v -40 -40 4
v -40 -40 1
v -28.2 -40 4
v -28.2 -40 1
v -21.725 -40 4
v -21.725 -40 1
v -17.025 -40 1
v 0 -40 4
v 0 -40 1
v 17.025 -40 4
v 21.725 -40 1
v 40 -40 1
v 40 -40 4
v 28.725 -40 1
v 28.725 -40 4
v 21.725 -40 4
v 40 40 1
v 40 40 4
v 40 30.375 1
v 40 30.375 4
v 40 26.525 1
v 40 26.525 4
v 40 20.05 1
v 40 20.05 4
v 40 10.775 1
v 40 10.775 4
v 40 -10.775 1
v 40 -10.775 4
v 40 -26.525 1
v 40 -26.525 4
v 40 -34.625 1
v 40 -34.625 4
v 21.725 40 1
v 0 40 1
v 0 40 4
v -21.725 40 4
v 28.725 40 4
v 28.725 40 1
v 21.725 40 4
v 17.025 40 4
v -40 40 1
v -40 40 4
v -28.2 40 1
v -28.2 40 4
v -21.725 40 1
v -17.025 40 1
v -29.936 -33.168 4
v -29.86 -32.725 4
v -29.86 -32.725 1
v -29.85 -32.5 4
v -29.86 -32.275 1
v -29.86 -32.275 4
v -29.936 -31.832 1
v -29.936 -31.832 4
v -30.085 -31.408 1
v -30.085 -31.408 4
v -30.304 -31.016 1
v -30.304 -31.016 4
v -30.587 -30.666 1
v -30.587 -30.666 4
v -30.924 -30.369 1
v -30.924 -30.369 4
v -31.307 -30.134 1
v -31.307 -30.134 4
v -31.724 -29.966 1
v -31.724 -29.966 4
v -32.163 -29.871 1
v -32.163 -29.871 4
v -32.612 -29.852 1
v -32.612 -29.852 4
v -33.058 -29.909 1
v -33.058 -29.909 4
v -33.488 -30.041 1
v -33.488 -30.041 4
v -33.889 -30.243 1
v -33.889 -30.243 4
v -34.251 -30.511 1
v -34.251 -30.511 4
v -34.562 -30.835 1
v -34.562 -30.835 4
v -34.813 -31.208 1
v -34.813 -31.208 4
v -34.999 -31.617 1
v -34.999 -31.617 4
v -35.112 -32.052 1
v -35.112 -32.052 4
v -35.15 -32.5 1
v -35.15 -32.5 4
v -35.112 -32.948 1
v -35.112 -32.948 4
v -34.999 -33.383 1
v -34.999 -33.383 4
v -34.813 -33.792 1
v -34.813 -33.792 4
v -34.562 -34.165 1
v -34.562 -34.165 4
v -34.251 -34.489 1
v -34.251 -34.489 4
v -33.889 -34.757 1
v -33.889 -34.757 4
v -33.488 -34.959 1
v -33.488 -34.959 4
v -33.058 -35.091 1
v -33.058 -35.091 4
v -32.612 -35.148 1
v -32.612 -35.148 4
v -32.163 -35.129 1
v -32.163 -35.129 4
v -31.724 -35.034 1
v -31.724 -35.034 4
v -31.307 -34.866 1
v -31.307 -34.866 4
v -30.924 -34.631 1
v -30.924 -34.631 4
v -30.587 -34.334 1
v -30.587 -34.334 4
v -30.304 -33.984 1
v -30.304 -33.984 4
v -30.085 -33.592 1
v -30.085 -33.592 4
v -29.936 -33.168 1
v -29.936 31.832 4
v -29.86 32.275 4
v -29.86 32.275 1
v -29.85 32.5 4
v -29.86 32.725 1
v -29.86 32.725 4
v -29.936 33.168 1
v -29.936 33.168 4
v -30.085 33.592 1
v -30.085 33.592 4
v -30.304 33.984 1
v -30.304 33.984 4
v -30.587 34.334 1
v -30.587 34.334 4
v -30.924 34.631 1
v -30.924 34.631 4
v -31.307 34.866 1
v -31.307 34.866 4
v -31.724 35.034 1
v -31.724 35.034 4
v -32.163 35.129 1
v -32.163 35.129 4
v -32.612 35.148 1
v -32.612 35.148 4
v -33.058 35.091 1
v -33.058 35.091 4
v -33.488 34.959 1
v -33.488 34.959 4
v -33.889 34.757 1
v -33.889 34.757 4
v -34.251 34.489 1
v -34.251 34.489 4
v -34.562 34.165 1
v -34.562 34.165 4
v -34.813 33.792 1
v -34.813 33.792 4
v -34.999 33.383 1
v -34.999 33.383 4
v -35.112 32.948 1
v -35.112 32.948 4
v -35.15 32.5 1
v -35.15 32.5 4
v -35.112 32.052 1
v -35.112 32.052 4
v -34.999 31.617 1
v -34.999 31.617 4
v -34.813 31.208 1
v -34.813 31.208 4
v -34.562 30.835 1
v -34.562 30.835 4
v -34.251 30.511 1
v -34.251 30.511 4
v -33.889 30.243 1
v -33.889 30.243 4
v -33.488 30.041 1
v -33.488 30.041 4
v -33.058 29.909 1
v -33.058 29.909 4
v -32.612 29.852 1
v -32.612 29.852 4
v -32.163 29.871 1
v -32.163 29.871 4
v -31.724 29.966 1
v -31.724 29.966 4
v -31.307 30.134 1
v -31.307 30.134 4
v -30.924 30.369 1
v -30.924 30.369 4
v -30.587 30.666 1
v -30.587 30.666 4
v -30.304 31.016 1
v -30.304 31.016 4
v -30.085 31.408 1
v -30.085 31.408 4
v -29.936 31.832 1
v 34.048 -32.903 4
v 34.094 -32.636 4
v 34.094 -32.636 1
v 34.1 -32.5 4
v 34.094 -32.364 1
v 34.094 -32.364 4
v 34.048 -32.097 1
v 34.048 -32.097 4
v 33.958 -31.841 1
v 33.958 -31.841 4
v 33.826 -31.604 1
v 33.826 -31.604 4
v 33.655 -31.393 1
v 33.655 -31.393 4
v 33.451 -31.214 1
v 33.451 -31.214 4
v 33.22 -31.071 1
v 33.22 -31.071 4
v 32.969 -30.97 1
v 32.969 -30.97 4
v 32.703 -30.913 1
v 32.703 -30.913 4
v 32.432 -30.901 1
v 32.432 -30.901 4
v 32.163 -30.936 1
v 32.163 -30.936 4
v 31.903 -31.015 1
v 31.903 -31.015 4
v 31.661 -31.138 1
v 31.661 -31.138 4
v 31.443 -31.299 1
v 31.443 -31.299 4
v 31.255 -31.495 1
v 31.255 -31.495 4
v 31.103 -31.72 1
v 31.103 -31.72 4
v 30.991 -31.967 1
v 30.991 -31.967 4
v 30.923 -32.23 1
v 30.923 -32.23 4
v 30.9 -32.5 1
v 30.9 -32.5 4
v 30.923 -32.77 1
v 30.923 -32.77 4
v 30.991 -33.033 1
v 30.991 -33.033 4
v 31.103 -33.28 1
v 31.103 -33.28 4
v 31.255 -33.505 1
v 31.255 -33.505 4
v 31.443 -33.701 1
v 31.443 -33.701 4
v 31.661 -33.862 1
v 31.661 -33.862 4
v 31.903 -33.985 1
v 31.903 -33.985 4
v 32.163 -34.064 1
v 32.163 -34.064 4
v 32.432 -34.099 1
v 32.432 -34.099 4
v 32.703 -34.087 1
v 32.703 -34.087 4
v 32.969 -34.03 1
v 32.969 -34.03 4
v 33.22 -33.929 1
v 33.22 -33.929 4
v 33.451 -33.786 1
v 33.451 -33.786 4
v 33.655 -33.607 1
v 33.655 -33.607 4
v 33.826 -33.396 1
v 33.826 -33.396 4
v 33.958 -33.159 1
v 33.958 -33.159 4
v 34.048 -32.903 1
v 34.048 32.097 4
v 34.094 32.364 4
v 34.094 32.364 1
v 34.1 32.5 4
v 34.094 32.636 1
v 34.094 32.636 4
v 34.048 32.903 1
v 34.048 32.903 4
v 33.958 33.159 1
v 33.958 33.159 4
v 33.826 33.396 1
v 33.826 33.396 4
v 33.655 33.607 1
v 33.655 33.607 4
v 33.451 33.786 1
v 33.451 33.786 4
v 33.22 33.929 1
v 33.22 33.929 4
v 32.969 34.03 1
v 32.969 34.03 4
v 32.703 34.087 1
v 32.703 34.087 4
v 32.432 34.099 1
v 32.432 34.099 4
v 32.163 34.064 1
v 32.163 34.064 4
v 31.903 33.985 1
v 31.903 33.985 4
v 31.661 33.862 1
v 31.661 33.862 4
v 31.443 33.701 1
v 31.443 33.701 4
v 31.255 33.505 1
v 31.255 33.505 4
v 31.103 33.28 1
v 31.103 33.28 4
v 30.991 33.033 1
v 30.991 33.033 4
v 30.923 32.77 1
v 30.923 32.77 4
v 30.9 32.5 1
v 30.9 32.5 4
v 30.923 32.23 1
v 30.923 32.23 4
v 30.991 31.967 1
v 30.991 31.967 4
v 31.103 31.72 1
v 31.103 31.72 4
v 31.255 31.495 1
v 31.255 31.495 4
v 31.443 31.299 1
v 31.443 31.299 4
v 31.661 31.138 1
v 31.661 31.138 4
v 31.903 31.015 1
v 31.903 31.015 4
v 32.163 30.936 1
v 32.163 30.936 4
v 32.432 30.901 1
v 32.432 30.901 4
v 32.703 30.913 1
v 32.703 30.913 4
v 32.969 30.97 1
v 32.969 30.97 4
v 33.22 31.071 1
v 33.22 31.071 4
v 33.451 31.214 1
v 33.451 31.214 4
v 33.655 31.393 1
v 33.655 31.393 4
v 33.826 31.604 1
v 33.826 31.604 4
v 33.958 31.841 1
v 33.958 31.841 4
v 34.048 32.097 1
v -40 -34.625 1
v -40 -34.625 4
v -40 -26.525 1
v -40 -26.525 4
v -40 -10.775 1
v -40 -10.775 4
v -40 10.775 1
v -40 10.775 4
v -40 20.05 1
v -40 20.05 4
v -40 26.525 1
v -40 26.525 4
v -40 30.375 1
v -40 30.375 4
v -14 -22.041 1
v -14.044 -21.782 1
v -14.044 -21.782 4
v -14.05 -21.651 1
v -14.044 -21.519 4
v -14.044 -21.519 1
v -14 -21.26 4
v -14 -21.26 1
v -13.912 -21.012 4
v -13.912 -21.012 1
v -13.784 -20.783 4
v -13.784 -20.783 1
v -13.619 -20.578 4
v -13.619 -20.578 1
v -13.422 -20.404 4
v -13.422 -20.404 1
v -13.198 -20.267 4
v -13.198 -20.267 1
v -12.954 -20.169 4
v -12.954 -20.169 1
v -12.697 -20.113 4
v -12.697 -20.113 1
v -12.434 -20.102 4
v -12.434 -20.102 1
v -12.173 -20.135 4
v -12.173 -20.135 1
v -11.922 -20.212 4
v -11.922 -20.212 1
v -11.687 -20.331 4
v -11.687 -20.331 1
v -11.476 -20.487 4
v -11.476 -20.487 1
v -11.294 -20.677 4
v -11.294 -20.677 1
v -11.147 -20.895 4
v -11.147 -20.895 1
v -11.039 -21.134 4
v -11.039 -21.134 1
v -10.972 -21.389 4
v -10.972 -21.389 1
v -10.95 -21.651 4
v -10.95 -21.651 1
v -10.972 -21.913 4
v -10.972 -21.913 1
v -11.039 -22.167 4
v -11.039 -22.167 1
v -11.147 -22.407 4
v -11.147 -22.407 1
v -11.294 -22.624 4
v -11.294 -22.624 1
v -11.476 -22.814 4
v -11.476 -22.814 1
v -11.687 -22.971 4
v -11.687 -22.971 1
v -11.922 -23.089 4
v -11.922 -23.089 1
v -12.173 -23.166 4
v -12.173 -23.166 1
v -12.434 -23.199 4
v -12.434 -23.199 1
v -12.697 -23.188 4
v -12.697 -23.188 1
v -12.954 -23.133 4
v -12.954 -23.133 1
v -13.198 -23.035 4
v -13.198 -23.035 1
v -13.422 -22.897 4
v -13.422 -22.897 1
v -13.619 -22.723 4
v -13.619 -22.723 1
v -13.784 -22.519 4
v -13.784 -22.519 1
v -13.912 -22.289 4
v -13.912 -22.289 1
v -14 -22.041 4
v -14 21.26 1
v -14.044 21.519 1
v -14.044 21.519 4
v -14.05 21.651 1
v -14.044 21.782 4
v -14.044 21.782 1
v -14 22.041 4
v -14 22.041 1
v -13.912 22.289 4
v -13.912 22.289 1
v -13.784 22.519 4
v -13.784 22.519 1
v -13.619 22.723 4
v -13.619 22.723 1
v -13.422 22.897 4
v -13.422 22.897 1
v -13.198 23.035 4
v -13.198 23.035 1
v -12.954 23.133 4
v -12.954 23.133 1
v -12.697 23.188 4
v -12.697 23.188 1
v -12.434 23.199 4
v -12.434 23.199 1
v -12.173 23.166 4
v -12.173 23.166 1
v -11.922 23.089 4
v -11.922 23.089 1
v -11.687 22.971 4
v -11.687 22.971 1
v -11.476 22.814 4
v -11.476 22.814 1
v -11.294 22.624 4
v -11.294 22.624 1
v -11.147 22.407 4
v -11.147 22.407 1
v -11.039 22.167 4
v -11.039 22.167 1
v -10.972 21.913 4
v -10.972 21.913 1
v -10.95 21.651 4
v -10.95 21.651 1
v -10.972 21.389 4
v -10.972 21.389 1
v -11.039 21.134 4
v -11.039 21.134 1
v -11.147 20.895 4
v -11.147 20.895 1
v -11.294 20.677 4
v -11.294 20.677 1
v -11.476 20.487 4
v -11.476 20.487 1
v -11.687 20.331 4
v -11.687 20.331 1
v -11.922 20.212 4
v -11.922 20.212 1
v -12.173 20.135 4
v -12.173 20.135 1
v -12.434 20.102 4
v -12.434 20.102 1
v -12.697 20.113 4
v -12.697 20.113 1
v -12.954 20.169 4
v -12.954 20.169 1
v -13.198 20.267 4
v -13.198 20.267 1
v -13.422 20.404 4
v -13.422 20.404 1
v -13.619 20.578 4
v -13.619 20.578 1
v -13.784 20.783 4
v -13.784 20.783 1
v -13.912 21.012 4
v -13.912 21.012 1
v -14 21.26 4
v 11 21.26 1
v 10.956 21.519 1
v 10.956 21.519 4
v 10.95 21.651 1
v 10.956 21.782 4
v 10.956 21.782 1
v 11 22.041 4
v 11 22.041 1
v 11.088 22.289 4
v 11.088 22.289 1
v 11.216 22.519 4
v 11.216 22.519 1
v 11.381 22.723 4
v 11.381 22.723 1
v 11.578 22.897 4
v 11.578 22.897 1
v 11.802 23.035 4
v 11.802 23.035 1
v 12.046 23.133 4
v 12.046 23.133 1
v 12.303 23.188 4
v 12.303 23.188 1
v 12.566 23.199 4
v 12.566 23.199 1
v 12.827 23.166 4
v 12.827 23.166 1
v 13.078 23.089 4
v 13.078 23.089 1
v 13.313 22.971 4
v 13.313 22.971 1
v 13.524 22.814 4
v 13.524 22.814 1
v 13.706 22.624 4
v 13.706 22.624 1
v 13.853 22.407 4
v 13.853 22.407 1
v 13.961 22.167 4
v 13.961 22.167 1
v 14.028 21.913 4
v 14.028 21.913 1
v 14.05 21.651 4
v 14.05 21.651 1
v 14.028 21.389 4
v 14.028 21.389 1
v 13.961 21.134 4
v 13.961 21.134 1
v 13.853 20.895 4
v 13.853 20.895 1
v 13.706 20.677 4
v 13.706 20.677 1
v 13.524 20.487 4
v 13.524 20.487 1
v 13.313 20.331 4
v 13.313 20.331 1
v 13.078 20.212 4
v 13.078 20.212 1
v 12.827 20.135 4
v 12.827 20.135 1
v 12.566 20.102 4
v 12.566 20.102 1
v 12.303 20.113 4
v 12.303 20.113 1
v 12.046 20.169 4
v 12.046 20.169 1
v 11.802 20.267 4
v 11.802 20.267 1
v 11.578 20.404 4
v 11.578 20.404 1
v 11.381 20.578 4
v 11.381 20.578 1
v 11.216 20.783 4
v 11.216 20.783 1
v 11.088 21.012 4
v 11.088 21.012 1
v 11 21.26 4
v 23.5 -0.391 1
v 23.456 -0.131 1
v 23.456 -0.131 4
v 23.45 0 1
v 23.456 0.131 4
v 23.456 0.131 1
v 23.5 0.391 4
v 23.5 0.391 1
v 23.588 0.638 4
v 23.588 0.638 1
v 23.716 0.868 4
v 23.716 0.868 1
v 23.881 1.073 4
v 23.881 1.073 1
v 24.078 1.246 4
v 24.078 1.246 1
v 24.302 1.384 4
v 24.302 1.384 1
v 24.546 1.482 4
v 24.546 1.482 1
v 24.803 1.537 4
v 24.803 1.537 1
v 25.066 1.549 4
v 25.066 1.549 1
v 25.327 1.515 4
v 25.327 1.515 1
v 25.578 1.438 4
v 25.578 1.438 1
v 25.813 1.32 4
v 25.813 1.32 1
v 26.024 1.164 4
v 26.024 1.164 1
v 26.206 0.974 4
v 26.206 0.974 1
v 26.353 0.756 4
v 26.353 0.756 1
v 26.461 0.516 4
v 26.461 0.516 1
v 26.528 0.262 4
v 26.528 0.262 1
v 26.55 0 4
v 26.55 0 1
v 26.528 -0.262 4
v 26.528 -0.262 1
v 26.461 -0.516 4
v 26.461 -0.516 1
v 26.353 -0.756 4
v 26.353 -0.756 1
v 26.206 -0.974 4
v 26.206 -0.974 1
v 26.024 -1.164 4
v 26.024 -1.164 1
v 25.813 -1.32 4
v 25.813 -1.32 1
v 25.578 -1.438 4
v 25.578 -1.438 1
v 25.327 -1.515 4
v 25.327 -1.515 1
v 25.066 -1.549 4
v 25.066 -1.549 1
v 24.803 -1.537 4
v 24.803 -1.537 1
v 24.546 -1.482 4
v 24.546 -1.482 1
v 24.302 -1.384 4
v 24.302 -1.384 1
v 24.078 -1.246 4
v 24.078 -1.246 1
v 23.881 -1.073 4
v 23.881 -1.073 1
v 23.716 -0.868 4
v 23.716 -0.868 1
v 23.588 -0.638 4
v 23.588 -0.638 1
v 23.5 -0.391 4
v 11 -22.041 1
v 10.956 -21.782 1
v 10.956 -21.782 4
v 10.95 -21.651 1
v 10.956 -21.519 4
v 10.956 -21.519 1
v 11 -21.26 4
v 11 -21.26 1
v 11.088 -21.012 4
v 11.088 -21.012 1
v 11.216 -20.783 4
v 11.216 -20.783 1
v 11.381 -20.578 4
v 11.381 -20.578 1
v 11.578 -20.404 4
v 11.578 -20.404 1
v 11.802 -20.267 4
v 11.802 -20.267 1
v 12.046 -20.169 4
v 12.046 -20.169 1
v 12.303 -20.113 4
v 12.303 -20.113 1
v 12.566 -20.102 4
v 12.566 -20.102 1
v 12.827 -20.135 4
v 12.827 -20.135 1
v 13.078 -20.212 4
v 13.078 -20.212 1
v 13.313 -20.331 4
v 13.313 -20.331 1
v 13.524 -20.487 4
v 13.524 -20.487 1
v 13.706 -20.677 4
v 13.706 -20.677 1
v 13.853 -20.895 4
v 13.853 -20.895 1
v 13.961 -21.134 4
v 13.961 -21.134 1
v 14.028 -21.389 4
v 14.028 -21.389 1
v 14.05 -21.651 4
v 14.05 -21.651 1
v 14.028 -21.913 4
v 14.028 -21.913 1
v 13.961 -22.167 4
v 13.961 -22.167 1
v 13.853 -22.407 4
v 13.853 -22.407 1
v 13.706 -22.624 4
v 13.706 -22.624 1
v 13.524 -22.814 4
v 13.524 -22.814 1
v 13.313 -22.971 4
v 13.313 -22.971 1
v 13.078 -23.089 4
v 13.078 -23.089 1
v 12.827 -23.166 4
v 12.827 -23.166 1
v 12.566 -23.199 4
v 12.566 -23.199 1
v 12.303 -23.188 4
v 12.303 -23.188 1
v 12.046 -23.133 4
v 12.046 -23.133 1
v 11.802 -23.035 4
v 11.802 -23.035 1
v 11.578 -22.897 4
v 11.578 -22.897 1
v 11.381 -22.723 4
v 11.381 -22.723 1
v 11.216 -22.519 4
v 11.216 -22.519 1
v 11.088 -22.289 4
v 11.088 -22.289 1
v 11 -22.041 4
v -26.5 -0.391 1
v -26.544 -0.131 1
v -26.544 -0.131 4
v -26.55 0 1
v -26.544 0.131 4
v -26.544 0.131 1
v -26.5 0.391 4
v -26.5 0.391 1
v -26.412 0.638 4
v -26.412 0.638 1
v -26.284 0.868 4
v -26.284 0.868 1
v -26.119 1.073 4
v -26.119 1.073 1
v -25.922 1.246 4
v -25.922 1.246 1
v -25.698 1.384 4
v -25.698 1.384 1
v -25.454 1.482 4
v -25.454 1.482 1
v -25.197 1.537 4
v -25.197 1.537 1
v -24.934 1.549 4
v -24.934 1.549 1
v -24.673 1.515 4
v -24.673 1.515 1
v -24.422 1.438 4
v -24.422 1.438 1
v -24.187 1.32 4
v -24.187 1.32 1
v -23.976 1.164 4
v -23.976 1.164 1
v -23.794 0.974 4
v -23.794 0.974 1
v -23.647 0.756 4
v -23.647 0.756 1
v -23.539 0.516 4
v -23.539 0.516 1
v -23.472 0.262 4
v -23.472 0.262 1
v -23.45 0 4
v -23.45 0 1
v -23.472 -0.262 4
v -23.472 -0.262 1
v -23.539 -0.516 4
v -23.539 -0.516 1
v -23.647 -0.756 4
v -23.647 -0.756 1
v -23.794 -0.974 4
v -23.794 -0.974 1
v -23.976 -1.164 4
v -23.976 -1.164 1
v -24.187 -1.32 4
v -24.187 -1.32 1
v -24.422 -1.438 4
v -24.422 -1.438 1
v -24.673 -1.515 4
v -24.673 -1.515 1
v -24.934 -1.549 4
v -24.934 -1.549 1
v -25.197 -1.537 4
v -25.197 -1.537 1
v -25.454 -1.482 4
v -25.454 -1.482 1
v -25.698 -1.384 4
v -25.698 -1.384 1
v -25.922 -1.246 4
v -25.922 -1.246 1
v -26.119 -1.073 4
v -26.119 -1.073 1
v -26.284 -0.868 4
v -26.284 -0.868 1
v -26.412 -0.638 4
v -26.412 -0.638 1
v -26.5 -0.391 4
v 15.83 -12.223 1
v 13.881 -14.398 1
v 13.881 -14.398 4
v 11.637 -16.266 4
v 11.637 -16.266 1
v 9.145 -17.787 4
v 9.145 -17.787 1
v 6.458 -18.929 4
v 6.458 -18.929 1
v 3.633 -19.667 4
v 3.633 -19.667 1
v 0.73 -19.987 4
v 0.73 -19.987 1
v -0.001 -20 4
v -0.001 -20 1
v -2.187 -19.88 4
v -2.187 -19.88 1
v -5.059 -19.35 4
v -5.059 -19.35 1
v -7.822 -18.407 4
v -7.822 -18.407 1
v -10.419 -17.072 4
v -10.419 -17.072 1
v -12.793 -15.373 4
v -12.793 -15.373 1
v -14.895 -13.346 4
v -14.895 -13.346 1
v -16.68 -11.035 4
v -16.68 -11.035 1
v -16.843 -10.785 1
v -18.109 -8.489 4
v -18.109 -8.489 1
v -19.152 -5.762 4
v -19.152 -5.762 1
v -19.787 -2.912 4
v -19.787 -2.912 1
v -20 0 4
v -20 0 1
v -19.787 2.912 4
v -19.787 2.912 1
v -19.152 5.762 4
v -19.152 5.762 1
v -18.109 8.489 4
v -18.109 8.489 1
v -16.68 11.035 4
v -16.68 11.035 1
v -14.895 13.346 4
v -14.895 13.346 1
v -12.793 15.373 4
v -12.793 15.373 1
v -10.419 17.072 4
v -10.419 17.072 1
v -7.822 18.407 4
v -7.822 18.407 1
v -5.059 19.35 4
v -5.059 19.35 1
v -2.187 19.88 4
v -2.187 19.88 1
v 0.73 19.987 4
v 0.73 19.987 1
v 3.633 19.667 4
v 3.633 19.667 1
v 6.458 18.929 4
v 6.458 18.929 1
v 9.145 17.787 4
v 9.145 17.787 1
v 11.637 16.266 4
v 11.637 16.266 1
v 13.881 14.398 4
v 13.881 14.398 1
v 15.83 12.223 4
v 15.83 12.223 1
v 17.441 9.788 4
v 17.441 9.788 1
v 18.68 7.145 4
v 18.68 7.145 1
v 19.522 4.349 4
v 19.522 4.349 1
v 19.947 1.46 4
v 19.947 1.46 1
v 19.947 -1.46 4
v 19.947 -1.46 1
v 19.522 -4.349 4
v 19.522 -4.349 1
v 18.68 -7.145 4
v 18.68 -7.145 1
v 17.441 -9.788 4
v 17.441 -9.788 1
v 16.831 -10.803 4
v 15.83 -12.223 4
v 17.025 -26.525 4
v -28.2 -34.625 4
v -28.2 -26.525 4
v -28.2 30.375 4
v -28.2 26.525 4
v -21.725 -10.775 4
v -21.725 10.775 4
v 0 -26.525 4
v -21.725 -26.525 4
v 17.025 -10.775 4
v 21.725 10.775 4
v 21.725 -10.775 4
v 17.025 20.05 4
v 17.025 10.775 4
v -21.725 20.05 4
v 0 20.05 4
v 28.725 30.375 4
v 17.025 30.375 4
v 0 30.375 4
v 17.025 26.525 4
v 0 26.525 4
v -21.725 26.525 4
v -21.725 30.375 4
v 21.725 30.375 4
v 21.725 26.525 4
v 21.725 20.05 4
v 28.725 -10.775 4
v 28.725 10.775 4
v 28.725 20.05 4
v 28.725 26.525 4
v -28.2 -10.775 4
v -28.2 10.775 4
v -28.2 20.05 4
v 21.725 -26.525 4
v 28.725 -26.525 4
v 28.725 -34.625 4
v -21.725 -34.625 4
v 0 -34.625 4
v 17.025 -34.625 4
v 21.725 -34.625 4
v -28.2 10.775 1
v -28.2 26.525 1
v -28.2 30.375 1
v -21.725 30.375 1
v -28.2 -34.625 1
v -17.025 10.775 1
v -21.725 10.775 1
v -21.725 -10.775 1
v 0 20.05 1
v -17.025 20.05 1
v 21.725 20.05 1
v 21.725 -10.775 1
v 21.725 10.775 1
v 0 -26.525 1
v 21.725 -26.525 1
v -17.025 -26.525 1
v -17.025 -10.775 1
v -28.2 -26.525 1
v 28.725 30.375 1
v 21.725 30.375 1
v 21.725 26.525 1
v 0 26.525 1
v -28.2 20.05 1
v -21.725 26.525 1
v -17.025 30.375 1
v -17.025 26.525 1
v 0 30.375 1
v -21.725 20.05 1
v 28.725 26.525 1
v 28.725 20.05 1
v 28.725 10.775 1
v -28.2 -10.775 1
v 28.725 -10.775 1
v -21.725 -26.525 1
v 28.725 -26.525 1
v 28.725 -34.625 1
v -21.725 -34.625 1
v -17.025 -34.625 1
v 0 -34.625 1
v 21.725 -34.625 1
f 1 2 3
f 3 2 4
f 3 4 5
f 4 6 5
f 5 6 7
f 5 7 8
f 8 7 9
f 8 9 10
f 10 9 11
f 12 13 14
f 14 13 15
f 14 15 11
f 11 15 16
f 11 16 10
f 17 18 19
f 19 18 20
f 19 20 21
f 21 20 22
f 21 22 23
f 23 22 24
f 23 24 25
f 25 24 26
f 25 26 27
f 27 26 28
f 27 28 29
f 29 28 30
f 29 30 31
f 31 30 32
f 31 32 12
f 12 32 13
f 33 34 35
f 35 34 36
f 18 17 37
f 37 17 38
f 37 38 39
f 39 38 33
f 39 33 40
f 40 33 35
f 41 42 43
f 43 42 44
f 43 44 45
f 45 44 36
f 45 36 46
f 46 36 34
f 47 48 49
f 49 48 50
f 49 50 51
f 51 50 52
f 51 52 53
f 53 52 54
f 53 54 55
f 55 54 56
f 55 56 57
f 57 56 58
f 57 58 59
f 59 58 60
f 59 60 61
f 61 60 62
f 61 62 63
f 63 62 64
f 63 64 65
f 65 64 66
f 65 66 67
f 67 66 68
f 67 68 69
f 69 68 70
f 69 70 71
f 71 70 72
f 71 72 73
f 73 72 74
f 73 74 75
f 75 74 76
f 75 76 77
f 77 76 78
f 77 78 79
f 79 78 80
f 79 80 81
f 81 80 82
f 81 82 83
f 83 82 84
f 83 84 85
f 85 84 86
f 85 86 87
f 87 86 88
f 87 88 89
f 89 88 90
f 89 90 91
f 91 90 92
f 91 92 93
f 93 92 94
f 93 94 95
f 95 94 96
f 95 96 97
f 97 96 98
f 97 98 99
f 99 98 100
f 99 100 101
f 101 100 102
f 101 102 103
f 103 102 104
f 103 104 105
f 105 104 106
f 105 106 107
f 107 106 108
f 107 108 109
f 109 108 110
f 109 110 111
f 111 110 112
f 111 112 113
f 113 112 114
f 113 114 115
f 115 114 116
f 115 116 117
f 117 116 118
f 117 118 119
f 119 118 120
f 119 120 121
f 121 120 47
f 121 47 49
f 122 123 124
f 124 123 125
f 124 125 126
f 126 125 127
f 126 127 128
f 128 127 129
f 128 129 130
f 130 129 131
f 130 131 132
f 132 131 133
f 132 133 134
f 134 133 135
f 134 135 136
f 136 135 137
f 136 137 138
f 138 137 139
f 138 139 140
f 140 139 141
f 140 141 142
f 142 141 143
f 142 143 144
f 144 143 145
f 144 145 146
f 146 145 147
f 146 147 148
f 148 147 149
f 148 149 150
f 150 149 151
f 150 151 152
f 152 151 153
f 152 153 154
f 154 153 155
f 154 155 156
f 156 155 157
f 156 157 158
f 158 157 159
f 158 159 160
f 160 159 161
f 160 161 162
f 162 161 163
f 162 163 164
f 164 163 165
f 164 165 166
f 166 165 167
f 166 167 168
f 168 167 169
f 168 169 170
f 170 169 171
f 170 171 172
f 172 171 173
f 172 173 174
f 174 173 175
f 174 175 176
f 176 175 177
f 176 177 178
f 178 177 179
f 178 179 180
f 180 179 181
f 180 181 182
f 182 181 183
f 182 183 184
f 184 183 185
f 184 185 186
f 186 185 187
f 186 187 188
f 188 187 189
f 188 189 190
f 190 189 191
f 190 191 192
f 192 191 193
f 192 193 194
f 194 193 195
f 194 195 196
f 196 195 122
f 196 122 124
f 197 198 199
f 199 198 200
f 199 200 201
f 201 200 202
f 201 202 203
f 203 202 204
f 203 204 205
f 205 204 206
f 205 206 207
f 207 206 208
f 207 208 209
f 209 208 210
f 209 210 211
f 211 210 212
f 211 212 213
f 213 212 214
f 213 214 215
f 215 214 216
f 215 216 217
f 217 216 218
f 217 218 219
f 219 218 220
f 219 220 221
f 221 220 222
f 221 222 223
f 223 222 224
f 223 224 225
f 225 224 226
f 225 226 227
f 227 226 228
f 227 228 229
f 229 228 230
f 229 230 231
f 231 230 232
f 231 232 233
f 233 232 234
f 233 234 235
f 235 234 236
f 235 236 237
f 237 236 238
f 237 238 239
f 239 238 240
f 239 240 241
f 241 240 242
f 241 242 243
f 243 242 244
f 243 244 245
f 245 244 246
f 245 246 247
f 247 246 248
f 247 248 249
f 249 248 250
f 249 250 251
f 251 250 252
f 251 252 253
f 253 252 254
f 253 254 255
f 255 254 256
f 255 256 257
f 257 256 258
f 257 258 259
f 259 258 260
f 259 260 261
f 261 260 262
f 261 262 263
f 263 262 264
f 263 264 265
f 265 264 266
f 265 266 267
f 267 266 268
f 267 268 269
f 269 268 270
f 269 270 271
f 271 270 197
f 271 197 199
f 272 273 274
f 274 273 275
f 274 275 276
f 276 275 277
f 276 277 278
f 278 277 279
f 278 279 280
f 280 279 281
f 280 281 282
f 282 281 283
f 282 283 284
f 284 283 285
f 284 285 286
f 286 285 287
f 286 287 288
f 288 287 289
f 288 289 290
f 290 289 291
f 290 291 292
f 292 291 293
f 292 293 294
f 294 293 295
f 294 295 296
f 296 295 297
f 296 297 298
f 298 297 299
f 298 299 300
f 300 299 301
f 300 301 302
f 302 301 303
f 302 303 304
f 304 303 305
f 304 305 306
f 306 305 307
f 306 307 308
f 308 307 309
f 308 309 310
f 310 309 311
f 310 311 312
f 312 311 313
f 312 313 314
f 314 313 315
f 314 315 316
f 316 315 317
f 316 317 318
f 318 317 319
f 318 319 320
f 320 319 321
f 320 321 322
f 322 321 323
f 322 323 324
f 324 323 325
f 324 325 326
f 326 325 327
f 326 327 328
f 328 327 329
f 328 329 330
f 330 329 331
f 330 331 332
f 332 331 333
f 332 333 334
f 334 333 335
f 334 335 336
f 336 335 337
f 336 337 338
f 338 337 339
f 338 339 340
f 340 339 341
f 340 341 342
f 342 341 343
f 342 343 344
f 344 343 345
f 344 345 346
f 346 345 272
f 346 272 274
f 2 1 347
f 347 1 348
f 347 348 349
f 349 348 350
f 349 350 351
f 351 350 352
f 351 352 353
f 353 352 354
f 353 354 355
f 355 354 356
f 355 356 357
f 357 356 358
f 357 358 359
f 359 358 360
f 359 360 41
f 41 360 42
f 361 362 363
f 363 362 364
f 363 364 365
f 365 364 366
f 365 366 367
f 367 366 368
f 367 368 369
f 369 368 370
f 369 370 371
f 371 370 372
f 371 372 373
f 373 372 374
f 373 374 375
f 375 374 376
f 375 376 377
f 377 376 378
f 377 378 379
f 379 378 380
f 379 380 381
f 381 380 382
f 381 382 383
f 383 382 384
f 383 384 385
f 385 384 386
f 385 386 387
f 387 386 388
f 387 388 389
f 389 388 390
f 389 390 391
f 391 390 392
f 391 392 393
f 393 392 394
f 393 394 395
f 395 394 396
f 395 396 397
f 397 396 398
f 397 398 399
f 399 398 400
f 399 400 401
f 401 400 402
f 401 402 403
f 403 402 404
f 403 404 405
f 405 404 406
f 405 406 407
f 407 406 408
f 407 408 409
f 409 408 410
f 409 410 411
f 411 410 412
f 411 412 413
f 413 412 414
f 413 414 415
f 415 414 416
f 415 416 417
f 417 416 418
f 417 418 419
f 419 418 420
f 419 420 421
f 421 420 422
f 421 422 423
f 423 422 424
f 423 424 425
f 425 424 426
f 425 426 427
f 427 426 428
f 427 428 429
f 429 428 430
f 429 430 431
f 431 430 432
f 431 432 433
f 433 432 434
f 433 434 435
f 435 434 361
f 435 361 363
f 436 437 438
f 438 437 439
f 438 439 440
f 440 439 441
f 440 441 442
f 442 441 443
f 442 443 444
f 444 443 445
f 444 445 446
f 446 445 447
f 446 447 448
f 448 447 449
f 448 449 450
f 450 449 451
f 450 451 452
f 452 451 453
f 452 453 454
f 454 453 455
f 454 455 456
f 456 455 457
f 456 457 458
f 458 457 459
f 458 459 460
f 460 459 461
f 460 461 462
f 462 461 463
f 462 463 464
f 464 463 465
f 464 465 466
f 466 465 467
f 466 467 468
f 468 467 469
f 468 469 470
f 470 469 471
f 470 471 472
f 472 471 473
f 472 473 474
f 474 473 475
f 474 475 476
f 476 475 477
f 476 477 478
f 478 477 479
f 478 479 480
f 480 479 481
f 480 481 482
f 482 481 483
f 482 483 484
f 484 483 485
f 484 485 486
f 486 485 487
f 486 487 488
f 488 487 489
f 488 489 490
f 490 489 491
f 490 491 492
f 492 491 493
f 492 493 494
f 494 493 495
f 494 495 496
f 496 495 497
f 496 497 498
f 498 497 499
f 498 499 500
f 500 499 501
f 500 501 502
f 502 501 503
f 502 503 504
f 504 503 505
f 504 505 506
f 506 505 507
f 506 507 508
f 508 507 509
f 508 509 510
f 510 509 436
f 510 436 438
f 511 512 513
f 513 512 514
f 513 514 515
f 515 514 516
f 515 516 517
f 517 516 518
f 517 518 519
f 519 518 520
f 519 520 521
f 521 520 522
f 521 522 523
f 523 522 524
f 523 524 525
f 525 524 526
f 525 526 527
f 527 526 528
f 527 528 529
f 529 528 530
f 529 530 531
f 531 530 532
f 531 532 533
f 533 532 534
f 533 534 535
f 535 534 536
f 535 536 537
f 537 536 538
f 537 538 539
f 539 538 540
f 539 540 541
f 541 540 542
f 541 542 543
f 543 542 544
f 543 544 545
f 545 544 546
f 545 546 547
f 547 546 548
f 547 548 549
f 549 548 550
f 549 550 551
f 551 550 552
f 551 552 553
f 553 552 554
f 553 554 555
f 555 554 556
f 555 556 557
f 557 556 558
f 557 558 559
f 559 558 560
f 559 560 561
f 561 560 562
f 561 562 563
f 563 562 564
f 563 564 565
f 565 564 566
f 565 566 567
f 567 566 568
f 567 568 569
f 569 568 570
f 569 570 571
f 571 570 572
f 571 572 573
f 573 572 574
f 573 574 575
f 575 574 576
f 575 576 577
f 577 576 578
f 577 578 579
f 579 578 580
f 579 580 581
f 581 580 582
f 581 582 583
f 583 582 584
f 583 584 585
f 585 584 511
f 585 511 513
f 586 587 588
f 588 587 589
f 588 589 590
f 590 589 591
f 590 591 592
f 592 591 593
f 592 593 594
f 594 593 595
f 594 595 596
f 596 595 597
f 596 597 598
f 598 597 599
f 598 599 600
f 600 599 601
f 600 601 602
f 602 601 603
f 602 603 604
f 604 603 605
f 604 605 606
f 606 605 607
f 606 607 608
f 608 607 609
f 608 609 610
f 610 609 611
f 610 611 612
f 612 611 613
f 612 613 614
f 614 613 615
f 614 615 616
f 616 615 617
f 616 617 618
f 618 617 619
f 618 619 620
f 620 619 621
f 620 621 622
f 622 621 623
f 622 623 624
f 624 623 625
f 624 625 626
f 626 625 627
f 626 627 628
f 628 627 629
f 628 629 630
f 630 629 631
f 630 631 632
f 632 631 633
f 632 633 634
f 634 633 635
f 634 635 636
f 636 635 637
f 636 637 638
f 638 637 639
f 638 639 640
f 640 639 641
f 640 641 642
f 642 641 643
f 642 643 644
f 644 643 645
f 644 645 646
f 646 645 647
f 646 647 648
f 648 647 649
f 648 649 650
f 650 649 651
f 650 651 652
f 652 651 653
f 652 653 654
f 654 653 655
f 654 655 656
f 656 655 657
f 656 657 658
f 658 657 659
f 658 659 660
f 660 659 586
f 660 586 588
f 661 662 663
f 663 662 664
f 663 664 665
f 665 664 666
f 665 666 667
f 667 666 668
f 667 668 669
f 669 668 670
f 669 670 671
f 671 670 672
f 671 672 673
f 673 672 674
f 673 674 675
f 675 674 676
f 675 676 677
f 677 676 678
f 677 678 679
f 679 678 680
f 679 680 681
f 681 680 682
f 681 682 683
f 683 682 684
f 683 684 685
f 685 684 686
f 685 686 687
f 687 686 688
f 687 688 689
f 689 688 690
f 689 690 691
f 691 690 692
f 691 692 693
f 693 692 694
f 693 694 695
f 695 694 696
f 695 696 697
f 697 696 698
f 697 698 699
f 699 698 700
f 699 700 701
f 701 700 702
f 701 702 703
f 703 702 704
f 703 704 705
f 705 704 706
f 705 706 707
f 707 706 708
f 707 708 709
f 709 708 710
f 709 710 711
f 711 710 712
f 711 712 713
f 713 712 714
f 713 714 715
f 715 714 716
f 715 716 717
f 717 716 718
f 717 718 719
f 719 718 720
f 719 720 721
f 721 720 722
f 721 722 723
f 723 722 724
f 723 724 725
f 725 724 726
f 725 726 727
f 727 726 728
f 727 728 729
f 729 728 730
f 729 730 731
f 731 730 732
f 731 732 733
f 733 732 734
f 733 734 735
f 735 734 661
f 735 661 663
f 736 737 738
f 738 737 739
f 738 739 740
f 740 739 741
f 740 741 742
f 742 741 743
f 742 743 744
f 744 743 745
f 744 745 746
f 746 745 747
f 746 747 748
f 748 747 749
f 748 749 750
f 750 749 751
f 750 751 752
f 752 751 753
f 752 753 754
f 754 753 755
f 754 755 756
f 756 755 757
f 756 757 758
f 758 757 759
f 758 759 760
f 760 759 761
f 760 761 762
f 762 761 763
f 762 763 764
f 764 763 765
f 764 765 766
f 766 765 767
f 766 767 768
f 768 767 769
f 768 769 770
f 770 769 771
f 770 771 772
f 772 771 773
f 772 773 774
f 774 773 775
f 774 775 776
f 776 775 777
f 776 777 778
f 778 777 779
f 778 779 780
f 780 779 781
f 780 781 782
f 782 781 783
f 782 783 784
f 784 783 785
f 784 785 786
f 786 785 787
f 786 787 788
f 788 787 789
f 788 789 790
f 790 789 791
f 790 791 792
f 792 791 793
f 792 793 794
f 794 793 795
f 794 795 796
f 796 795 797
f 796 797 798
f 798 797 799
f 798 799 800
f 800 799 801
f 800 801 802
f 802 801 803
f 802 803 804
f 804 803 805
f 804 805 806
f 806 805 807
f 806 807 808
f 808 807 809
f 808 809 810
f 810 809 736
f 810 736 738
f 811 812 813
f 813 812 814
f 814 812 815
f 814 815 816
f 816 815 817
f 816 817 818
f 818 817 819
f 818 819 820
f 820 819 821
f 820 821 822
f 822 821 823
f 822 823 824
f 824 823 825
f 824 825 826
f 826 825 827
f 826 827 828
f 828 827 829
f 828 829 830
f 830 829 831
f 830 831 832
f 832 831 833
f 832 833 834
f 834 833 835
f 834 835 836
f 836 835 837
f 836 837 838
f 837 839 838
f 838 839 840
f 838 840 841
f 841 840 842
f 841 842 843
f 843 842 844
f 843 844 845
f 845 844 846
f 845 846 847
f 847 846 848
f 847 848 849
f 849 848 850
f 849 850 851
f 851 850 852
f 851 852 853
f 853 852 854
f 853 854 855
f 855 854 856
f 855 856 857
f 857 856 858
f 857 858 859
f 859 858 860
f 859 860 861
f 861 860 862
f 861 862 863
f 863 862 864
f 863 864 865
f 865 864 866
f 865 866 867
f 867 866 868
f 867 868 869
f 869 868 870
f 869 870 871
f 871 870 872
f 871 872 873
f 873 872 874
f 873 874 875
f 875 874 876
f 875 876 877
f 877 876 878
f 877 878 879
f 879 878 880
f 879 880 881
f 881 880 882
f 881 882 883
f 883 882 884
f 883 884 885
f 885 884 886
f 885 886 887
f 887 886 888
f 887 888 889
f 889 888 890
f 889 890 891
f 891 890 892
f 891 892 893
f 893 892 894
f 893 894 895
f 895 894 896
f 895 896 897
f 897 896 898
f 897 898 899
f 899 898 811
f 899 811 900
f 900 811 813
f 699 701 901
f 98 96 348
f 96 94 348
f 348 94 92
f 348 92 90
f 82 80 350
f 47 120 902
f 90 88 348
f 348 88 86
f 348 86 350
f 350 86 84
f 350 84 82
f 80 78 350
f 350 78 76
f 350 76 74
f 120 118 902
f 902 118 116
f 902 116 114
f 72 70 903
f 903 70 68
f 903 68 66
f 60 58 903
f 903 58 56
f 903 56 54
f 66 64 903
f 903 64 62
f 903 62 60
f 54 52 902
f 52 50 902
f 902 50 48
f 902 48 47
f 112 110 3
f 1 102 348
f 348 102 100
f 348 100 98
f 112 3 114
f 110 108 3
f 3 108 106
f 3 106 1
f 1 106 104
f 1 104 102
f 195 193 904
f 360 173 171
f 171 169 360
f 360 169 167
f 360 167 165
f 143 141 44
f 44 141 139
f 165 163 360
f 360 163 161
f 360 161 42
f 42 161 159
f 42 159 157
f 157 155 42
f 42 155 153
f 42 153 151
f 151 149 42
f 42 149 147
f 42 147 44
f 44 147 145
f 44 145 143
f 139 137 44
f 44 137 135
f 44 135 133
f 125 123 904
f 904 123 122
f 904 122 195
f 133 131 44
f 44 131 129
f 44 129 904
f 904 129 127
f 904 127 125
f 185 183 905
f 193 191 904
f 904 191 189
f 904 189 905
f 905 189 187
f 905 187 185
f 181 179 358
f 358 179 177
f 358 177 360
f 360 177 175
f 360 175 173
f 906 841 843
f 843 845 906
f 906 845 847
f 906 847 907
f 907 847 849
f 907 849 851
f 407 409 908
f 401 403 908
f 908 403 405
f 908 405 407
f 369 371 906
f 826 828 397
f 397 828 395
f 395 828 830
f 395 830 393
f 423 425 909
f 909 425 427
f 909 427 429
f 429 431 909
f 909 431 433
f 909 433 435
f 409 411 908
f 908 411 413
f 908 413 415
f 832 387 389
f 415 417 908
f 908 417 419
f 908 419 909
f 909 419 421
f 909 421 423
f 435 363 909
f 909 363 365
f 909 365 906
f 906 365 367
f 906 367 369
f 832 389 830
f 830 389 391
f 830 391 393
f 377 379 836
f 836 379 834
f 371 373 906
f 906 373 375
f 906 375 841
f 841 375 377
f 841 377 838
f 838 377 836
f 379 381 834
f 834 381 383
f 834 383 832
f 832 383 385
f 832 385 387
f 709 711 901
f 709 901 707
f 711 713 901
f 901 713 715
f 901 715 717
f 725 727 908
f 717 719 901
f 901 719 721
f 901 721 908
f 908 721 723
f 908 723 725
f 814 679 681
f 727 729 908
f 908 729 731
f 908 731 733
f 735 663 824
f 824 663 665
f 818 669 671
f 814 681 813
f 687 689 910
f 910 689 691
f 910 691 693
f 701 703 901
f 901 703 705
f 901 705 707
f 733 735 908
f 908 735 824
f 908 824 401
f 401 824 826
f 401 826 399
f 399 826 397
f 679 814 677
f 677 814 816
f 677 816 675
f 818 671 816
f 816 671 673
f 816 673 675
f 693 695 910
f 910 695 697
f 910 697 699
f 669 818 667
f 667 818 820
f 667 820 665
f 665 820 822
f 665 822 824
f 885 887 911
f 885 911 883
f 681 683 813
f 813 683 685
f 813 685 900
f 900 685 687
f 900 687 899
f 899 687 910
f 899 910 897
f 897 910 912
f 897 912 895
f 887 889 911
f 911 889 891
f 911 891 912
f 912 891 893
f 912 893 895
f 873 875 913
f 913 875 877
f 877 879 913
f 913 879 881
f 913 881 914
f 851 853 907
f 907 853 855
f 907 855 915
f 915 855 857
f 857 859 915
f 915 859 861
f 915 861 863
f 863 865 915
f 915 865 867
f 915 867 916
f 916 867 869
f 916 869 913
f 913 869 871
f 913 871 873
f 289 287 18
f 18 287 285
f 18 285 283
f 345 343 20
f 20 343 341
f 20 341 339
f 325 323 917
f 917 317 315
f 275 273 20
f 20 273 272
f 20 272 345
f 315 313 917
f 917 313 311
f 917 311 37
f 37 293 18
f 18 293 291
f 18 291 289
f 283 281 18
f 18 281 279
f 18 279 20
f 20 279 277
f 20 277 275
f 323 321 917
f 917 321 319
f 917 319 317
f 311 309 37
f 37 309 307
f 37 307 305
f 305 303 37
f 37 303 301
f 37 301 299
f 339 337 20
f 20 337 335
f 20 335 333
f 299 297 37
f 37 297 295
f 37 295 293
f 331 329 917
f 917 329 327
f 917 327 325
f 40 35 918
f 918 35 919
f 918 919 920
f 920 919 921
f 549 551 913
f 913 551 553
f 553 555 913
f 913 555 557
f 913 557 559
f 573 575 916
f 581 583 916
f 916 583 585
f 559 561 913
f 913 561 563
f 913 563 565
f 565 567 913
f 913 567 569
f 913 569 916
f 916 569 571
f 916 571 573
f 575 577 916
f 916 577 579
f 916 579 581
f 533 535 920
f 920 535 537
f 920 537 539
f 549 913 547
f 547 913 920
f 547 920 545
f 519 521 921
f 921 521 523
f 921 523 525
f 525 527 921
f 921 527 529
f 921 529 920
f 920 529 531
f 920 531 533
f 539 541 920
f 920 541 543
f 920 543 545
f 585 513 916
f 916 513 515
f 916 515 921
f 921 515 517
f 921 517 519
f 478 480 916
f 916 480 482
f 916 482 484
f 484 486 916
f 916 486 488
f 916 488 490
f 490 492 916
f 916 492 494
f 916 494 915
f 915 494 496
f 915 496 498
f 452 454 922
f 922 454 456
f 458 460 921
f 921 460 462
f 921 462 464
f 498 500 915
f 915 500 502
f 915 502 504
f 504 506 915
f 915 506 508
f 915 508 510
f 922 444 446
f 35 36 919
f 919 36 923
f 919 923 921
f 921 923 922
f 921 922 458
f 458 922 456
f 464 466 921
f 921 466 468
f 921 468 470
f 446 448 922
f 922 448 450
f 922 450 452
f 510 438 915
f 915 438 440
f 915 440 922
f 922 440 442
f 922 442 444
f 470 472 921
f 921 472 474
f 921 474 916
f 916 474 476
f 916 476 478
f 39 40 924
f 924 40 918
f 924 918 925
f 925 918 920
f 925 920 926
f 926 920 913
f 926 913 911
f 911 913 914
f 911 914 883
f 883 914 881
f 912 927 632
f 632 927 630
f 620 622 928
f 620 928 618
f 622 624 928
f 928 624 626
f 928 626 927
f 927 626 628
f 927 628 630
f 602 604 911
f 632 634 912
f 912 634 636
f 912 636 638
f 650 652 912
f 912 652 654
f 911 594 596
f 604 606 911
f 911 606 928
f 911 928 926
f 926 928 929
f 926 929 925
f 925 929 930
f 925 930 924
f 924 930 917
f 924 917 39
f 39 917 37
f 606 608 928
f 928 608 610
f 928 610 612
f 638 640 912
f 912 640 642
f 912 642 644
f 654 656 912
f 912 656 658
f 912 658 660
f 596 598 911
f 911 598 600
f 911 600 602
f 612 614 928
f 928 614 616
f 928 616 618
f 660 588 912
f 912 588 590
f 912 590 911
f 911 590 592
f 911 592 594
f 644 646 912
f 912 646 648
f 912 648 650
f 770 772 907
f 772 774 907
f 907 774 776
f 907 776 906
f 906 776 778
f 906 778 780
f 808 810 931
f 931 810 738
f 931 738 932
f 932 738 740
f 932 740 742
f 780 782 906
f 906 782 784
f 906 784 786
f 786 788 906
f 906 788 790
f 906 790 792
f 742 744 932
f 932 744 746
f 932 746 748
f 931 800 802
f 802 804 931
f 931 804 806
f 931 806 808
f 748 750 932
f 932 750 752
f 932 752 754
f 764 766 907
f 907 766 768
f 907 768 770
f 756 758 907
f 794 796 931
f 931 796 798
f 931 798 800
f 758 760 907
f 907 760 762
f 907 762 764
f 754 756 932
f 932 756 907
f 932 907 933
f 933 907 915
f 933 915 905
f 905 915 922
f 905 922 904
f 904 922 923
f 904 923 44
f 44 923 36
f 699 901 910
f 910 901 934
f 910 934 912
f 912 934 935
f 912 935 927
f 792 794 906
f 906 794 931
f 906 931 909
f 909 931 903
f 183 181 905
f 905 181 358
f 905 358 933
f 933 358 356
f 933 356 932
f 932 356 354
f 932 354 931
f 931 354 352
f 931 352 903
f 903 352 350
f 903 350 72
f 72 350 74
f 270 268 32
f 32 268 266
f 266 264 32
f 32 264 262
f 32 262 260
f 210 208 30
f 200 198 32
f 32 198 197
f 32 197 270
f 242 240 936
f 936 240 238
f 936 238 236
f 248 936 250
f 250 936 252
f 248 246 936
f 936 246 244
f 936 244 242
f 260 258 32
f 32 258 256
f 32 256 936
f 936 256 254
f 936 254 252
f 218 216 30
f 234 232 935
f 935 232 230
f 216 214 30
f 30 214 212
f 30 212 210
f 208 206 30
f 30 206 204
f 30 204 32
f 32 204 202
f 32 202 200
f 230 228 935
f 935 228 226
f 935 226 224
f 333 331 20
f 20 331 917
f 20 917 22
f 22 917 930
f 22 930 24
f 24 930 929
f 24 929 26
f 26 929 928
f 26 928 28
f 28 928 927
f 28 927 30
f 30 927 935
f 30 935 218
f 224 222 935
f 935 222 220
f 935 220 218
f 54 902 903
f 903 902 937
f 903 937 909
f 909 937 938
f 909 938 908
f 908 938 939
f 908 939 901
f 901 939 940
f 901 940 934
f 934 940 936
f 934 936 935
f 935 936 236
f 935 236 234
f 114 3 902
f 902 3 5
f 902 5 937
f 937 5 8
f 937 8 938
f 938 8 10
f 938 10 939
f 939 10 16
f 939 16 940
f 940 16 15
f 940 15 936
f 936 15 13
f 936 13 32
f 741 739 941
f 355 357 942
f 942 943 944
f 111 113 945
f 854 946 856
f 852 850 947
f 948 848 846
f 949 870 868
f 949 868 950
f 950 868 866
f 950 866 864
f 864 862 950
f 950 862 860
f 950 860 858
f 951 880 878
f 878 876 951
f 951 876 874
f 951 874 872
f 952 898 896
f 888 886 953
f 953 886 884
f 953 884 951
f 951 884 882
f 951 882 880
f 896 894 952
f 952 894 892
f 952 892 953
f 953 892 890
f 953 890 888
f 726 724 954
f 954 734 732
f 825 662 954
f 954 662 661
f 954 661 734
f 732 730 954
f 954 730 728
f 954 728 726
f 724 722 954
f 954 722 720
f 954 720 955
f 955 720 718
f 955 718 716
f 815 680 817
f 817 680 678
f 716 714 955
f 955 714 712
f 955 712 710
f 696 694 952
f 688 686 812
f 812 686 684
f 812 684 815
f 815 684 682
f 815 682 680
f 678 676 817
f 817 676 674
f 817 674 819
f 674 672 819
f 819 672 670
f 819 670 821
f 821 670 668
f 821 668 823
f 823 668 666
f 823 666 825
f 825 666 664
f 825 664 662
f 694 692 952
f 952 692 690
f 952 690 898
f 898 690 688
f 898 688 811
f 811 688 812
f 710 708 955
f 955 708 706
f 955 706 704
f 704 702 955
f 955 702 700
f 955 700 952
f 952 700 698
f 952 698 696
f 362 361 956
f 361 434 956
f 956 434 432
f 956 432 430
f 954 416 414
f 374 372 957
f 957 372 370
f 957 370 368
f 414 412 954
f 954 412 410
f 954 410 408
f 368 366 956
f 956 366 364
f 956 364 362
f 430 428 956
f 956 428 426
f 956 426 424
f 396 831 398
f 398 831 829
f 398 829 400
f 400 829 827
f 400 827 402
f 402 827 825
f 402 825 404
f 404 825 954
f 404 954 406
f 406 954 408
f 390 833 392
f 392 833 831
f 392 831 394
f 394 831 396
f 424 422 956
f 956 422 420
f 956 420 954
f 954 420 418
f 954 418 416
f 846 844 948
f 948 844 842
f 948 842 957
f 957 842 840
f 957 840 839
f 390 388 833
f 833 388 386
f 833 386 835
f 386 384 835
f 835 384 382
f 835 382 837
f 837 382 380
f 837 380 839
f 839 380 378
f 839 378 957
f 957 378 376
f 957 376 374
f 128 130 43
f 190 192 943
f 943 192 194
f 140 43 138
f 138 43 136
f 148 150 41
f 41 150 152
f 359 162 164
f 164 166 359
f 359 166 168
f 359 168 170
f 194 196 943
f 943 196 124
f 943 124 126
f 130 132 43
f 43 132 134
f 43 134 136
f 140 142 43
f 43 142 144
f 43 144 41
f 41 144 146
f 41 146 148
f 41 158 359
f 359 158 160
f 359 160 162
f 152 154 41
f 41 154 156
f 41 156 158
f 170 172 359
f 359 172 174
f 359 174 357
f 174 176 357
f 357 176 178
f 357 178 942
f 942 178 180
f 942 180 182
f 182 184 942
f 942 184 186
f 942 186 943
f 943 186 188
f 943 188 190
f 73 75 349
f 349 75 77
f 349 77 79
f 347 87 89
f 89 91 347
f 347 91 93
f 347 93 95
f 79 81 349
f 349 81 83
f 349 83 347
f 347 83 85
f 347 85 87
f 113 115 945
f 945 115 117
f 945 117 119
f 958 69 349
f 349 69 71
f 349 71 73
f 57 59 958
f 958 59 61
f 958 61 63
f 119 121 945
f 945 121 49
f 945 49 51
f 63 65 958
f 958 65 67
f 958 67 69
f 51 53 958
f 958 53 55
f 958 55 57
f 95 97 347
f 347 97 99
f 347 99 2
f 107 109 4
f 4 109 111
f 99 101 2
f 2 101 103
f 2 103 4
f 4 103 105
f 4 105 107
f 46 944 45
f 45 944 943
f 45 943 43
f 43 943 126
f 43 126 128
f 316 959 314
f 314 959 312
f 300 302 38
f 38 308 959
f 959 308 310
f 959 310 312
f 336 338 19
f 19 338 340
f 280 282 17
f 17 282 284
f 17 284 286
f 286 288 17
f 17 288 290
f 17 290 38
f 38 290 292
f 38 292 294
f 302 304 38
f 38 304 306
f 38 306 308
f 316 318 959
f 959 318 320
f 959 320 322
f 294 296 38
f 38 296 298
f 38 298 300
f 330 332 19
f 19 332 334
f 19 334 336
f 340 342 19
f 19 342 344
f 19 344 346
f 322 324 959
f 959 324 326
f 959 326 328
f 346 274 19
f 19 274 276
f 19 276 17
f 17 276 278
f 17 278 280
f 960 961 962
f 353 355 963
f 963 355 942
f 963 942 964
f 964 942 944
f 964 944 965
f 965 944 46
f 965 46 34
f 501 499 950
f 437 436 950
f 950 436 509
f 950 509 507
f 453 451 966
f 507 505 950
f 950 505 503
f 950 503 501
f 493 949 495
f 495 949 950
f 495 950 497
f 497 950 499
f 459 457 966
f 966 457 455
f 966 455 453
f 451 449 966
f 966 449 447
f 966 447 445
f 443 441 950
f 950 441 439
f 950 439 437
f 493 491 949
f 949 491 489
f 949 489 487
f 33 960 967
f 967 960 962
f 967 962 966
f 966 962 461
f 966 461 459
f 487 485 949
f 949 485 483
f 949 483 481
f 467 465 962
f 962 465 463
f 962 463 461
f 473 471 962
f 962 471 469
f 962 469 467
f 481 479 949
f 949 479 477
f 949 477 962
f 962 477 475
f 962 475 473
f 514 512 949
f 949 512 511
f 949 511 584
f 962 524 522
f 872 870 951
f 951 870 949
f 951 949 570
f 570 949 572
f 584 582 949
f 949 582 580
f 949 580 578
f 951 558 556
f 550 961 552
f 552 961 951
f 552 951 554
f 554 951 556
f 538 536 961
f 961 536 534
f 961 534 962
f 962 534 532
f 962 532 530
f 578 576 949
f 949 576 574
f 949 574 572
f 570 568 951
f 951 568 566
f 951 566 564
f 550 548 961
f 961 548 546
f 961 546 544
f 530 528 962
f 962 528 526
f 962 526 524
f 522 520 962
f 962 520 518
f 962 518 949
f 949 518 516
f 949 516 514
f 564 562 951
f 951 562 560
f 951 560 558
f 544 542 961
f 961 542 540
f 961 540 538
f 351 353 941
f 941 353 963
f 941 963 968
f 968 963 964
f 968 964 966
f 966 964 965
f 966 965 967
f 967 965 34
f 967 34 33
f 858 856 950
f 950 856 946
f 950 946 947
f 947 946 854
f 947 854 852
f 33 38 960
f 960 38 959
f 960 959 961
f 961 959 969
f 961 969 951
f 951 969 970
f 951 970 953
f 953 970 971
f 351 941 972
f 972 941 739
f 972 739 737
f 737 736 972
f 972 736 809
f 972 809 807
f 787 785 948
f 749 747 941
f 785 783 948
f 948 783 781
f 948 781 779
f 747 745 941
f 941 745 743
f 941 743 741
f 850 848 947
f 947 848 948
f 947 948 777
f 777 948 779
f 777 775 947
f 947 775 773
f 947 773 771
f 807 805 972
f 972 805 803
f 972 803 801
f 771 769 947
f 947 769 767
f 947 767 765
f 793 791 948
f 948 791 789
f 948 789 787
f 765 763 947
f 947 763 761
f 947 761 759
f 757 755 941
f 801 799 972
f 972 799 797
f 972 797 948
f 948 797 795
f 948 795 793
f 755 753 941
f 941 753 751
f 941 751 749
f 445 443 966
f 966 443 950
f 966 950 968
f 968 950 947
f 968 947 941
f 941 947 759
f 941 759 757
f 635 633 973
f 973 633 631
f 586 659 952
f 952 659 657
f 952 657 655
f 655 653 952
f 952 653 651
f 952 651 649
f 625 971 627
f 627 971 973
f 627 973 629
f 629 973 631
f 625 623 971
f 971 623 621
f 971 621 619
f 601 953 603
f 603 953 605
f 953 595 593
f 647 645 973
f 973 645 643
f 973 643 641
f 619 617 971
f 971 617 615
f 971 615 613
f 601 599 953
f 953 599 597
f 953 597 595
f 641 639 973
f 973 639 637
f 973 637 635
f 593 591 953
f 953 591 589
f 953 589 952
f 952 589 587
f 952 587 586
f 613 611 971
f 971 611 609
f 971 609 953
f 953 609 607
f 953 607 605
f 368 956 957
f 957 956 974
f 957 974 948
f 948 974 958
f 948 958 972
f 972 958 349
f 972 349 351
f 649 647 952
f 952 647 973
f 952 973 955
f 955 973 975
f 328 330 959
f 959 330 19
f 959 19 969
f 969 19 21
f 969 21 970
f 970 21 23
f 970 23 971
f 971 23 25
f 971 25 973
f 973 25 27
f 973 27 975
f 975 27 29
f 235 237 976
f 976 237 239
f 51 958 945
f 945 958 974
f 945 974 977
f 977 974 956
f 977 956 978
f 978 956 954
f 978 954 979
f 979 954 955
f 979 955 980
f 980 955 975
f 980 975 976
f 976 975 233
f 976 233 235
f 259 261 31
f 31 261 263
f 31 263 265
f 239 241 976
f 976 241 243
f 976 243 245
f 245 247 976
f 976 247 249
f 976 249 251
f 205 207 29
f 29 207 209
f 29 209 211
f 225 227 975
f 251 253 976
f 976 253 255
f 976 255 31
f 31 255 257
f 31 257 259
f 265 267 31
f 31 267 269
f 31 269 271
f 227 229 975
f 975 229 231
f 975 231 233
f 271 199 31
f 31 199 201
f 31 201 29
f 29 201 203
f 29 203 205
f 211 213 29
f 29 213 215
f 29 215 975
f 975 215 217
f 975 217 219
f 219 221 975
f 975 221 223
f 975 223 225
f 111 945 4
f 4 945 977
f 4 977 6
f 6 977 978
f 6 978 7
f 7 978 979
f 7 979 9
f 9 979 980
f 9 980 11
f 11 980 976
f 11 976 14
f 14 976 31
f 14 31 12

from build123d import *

# Parameters (mm, degrees)
SKETCH_1_W          = 80
SKETCH_1_H          = 80
SKETCH_1_R          = 2.65
SKETCH_1_R_2        = 1.6
SKETCH_1_R_3        = 18
EXTRUDE_1_DEPTH     = 4
SKETCH_2_R          = 1.55
CUT_EXTRUDE_1_DEPTH = 57.709787515
SKETCH_4_R          = 20
CUT_EXTRUDE_2_DEPTH = 57.709787515
SKETCH_5_W          = 141.692074253
SKETCH_5_H          = 118.011672495
CUT_EXTRUDE_3_DEPTH = 1


with BuildPart() as part:
    # 草图1 → 凸台-拉伸1 (new body)
    with BuildSketch(Plane.XY):
        Rectangle(SKETCH_1_W, SKETCH_1_H)
        with Locations((-32.5, 32.5)):
            Circle(SKETCH_1_R, mode=Mode.SUBTRACT)
        with Locations((-32.5, -32.5)):
            Circle(SKETCH_1_R, mode=Mode.SUBTRACT)
        with Locations((32.5, 32.5)):
            Circle(SKETCH_1_R_2, mode=Mode.SUBTRACT)
        with Locations((32.5, -32.5)):
            Circle(SKETCH_1_R_2, mode=Mode.SUBTRACT)
        Circle(SKETCH_1_R_3, mode=Mode.SUBTRACT)
    extrude(amount=EXTRUDE_1_DEPTH)

    # 草图2 → 切除-拉伸1 (cut, through all)
    with BuildSketch(Plane.XY.offset(4)):
        with Locations((-12.5, 21.650635095)):
            Circle(SKETCH_2_R)
        with Locations((12.5, 21.650635095)):
            Circle(SKETCH_2_R)
        with Locations((25, 0)):
            Circle(SKETCH_2_R)
        with Locations((12.5, -21.650635095)):
            Circle(SKETCH_2_R)
        with Locations((-12.5, -21.650635095)):
            Circle(SKETCH_2_R)
        with Locations((-25, 0)):
            Circle(SKETCH_2_R)
    extrude(amount=-CUT_EXTRUDE_1_DEPTH, mode=Mode.SUBTRACT)

    # 草图4 → 切除-拉伸2 (cut, through all)
    with BuildSketch(Plane(origin=(0, 0, 0), x_dir=(-1, 0, 0), z_dir=(0, 0, -1))):
        Circle(SKETCH_4_R)
    extrude(amount=-CUT_EXTRUDE_2_DEPTH, mode=Mode.SUBTRACT)

    # 草图5 → 切除-拉伸3 (cut)
    with BuildSketch(Plane(origin=(0, 0, 0), x_dir=(-1, 0, 0), z_dir=(0, 0, -1))):
        with Locations((12.88109766, -5.92010044)):
            Rectangle(SKETCH_5_W, SKETCH_5_H)
    extrude(amount=-CUT_EXTRUDE_3_DEPTH, mode=Mode.SUBTRACT)


solid = part.part
